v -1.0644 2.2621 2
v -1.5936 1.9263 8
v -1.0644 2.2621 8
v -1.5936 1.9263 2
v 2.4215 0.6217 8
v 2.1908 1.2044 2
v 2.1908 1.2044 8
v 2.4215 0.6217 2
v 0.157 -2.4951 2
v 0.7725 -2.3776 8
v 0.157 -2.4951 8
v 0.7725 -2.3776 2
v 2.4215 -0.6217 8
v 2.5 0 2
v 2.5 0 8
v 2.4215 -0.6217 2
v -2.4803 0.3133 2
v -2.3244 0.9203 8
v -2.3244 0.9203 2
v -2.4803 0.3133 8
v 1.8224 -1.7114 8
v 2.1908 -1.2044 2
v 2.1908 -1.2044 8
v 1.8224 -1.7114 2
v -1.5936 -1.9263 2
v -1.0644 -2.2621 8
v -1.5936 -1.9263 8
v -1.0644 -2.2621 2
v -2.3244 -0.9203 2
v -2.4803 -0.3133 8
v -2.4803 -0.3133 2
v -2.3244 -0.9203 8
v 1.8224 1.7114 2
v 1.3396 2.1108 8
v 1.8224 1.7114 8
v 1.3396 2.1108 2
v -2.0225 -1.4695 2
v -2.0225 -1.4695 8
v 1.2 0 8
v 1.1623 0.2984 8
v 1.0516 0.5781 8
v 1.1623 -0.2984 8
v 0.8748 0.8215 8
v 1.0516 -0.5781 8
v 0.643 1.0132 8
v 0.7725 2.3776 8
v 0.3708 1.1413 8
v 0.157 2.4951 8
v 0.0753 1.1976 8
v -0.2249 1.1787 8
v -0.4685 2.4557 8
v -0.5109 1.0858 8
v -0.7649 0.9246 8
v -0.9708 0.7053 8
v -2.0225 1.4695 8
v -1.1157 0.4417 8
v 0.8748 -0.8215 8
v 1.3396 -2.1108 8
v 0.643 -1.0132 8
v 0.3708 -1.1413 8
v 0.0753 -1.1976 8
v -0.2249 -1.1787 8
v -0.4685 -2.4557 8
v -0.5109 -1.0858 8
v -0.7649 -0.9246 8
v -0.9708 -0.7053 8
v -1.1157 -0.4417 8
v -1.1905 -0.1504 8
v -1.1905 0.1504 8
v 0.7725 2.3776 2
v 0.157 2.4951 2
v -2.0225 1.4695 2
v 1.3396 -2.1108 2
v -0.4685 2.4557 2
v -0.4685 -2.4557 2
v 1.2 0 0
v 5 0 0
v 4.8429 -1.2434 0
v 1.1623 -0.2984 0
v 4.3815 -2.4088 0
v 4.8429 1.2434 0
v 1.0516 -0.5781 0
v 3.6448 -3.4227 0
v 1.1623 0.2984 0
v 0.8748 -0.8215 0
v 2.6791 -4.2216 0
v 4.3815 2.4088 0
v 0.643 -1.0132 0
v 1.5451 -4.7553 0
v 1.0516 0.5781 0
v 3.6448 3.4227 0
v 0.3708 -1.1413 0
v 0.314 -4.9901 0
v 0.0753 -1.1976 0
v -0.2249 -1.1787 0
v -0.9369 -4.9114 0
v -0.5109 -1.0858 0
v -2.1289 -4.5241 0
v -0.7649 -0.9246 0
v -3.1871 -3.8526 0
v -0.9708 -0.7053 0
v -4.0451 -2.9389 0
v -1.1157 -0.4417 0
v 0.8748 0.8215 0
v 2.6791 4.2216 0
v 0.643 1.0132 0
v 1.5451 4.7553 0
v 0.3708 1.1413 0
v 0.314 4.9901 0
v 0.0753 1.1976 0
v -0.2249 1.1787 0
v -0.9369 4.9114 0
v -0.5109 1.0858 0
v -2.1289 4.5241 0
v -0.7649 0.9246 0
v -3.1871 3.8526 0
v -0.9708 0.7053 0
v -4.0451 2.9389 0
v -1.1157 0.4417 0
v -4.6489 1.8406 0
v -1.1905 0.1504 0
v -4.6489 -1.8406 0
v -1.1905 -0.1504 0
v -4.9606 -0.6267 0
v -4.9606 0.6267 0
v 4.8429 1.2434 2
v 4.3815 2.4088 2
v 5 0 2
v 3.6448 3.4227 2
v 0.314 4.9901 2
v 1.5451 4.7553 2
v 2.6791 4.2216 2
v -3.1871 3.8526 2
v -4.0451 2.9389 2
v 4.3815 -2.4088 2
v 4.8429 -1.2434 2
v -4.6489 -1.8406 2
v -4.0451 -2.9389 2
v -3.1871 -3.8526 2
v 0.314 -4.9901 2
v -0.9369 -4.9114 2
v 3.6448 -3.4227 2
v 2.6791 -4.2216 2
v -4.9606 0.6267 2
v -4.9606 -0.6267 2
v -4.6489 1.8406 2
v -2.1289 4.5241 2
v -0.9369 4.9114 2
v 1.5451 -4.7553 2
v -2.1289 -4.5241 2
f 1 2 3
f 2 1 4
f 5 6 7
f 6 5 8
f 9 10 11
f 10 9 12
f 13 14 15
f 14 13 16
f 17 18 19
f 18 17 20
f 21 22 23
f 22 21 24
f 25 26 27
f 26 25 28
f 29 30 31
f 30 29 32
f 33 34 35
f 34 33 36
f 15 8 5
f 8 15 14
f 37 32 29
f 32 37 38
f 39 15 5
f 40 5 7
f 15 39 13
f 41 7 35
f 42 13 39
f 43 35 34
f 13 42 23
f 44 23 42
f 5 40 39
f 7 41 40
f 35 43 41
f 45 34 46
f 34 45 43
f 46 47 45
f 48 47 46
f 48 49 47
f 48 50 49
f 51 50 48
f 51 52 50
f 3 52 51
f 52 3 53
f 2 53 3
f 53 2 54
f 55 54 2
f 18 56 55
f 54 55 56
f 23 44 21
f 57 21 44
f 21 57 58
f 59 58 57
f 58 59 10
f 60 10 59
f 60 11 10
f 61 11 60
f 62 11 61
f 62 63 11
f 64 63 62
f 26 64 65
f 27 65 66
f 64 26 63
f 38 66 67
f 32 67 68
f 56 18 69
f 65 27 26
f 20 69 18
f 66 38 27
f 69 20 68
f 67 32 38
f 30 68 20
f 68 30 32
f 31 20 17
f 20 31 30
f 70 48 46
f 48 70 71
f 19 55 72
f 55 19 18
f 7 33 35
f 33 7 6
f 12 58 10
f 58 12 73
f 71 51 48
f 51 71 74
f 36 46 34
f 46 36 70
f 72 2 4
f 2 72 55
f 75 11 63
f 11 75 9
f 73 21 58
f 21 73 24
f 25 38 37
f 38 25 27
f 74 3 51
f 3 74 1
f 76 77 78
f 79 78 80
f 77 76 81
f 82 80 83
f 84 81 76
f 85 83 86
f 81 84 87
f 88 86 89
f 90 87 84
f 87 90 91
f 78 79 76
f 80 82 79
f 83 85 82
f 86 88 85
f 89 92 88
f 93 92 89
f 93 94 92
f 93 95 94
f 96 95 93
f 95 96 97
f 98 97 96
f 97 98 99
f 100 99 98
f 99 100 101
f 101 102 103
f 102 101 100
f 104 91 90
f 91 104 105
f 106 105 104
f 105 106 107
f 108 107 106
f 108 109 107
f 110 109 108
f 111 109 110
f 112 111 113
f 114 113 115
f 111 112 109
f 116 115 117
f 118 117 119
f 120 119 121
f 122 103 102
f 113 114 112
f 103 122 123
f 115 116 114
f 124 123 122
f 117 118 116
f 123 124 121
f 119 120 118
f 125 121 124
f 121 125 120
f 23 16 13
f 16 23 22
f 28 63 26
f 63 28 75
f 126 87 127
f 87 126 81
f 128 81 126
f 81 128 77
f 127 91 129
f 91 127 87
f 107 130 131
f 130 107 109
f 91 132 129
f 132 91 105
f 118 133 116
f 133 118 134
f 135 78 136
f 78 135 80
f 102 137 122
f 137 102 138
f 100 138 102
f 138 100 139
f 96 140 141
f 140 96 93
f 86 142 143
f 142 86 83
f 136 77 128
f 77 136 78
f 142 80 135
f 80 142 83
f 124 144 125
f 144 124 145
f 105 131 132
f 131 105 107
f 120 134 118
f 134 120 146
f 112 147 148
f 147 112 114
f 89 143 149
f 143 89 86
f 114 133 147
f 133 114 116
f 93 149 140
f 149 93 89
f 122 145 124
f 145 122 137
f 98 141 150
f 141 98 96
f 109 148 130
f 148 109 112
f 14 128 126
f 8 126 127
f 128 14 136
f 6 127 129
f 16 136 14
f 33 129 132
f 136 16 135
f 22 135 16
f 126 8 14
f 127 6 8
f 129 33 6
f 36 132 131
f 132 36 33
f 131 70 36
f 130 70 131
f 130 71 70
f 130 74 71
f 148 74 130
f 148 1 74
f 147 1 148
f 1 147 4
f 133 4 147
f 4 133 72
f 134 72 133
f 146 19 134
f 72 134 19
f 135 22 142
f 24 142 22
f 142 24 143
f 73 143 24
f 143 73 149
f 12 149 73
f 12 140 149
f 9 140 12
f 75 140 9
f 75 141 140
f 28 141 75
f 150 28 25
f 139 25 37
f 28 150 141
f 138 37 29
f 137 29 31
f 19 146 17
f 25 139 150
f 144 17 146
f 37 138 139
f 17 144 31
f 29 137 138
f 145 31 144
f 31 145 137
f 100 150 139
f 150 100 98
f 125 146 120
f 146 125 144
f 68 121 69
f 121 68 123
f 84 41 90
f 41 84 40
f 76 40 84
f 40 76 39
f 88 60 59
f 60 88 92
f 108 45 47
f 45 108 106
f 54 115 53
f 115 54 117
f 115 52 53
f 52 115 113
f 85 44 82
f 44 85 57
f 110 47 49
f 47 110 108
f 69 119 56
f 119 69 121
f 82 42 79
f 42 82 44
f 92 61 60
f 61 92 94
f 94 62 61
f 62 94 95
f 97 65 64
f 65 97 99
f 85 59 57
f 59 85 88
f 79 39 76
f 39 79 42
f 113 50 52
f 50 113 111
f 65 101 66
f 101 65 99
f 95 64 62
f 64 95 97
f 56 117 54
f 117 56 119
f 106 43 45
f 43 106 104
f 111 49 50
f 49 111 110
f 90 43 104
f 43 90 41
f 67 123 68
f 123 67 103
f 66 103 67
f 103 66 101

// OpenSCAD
res = 25;

difference() {
    union() {
        cylinder(h = 8, r = 2.5, $fn=res);
        cylinder(h = 2, r = 5, $fn=res);
    }
    cylinder(h = 10, r = 1.2, $fn=res);
}
